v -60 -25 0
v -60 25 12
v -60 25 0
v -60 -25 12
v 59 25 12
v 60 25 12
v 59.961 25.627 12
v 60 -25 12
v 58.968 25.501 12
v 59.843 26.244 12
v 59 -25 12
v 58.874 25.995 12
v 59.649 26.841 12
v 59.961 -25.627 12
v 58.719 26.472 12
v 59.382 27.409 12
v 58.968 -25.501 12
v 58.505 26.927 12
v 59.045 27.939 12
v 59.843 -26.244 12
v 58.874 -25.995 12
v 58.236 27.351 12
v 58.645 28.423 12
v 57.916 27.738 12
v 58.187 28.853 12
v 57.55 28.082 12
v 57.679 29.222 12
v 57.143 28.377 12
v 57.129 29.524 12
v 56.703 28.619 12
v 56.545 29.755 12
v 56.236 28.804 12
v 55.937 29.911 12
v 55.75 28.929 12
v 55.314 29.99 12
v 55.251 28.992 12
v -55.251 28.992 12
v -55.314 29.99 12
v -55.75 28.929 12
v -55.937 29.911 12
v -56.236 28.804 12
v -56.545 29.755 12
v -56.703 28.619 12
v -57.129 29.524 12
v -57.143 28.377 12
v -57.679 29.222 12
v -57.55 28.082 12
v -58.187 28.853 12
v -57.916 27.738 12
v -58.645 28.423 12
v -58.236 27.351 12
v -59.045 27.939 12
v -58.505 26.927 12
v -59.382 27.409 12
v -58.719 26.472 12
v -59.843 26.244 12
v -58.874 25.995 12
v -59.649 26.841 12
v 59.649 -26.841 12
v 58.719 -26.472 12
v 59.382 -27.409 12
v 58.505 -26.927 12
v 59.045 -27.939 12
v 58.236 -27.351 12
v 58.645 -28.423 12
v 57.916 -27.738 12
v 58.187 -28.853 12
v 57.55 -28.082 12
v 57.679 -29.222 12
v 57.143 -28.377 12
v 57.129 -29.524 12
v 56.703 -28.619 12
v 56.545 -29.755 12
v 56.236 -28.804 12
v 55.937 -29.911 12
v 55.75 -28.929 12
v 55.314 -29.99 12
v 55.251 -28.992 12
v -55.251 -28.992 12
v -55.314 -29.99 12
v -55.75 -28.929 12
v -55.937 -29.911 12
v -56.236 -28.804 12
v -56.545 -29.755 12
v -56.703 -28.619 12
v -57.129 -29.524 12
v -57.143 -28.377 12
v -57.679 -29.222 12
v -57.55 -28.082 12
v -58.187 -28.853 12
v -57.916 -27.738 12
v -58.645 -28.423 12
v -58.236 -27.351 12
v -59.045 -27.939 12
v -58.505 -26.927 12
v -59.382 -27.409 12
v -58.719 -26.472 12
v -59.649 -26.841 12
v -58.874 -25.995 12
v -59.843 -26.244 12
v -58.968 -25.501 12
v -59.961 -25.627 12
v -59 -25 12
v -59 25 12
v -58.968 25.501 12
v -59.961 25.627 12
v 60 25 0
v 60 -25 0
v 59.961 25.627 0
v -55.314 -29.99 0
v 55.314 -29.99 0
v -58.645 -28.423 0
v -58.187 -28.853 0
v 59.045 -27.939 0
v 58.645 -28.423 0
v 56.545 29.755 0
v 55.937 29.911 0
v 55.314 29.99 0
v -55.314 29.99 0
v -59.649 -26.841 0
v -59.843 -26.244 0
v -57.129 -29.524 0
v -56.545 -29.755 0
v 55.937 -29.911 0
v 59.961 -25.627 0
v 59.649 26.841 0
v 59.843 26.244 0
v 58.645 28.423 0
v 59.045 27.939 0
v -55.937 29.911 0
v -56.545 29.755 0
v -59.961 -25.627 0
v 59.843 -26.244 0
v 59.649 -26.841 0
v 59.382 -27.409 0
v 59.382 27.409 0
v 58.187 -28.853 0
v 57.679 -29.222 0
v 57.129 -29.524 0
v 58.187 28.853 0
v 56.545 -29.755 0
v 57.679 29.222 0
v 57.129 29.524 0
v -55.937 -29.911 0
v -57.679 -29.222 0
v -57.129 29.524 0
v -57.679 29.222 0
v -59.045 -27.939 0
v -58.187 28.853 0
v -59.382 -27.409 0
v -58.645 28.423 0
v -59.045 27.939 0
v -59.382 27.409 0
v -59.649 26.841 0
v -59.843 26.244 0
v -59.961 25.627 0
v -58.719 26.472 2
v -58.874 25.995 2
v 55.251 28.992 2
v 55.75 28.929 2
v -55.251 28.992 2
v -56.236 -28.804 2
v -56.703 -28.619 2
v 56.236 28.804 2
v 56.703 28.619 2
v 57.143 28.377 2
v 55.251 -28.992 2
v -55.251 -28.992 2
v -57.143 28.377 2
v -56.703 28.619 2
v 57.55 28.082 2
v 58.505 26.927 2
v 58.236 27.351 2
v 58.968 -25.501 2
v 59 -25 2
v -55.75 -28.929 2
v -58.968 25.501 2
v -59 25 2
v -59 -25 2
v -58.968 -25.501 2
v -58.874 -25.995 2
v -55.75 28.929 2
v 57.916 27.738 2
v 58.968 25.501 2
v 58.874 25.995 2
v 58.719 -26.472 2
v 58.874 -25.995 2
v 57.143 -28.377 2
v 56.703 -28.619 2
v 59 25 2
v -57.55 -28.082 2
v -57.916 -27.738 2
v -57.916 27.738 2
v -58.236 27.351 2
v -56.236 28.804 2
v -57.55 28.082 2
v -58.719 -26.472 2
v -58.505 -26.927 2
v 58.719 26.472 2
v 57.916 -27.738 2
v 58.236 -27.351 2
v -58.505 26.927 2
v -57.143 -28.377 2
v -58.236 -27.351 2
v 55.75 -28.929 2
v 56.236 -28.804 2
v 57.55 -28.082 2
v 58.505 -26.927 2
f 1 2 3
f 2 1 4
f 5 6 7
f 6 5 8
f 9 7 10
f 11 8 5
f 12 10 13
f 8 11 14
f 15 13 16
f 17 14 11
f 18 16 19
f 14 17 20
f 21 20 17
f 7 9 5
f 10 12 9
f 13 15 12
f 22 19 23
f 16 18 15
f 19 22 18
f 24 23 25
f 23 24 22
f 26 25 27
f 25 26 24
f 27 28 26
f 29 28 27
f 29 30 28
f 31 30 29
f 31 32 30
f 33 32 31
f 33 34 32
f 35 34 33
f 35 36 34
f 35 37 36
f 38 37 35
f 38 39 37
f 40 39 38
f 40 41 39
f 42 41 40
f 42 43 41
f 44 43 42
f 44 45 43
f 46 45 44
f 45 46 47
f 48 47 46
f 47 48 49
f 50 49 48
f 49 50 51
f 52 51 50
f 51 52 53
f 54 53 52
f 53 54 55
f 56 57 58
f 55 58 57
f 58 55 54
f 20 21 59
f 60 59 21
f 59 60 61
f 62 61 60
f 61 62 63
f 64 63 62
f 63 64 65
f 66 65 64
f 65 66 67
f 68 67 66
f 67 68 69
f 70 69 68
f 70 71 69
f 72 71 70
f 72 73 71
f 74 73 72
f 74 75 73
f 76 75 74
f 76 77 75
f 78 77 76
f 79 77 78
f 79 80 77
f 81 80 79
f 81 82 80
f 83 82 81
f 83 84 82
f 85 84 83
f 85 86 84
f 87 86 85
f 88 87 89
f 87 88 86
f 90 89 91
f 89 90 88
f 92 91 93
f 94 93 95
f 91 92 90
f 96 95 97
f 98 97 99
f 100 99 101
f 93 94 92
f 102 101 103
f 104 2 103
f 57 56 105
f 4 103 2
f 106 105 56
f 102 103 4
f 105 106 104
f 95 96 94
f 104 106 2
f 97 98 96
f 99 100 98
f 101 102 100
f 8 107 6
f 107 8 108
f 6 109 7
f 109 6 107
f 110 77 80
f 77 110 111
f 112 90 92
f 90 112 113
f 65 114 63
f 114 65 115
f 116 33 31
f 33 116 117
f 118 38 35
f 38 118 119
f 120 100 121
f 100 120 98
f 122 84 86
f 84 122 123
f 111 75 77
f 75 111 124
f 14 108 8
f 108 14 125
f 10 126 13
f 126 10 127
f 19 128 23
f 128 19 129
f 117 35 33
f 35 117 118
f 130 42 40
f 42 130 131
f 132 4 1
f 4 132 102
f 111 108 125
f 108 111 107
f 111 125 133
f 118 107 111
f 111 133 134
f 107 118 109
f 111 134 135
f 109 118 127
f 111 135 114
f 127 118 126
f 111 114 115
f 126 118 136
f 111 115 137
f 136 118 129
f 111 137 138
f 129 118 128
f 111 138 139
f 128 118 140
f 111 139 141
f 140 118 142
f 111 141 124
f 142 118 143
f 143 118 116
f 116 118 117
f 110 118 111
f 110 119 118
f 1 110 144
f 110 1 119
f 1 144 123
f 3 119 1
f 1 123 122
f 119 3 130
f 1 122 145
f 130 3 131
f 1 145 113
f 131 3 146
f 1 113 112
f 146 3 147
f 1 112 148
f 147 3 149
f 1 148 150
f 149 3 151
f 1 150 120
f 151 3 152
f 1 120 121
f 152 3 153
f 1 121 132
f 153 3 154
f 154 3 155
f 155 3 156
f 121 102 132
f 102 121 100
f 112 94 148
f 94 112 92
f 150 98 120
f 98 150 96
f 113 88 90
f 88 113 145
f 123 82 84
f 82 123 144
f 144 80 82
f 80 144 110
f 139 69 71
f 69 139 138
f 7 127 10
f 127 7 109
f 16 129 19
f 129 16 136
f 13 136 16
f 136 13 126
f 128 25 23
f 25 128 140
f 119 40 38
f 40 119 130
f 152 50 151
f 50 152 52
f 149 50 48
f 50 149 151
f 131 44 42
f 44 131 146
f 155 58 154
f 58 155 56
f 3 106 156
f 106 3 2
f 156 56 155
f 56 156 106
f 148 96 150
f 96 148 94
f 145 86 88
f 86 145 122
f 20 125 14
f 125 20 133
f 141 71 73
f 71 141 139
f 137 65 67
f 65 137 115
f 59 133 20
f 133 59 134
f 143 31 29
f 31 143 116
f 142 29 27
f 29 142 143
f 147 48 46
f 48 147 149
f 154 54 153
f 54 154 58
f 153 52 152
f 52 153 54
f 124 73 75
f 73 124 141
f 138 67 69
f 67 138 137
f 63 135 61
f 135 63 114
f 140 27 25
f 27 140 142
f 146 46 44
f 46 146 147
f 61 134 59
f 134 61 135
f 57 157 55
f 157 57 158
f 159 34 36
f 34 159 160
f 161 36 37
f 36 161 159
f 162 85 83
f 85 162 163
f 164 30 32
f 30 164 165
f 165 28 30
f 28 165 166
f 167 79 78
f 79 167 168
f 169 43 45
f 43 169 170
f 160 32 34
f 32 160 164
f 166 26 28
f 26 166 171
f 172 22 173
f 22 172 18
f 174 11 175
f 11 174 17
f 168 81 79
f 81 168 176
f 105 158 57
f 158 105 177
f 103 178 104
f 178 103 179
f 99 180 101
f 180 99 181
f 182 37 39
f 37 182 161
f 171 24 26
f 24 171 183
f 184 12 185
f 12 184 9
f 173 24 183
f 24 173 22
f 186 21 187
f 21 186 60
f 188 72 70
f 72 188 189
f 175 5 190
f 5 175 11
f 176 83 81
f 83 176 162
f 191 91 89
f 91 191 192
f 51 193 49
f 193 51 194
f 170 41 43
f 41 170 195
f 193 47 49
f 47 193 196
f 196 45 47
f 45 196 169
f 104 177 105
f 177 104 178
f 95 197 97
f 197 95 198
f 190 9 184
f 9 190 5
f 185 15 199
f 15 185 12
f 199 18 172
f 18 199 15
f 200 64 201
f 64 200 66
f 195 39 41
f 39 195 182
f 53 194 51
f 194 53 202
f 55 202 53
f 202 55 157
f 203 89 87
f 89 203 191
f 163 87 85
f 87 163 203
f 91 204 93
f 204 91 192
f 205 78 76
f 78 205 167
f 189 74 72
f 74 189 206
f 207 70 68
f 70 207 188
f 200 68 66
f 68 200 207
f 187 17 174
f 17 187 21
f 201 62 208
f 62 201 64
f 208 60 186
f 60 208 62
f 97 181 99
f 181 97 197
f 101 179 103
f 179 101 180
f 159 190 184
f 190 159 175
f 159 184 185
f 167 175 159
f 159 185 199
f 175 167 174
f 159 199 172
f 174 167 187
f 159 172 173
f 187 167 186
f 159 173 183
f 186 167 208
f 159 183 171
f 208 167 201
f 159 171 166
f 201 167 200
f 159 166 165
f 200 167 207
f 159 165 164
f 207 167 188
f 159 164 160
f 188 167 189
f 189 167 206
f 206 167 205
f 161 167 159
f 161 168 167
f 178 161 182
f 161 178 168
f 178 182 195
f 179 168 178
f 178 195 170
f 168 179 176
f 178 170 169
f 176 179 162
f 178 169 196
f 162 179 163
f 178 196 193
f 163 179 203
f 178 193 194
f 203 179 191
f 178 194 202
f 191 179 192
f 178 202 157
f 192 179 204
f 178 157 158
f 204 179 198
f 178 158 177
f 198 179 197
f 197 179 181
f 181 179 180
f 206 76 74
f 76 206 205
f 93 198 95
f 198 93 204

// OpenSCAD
$fn = 50;


difference() {
	union() {
		hull() {
			translate(v = [-55.0000000000, 25.0000000000, 0]) {
				cylinder(h = 12, r = 5);
			}
			translate(v = [55.0000000000, 25.0000000000, 0]) {
				cylinder(h = 12, r = 5);
			}
			translate(v = [-55.0000000000, -25.0000000000, 0]) {
				cylinder(h = 12, r = 5);
			}
			translate(v = [55.0000000000, -25.0000000000, 0]) {
				cylinder(h = 12, r = 5);
			}
		}
	}
	union() {
		translate(v = [0, 0, 2]) {
			hull() {
				translate(v = [-55.0000000000, 25.0000000000, 0]) {
					cylinder(h = 10, r = 4);
				}
				translate(v = [55.0000000000, 25.0000000000, 0]) {
					cylinder(h = 10, r = 4);
				}
				translate(v = [-55.0000000000, -25.0000000000, 0]) {
					cylinder(h = 10, r = 4);
				}
				translate(v = [55.0000000000, -25.0000000000, 0]) {
					cylinder(h = 10, r = 4);
				}
			}
		}
	}
}
